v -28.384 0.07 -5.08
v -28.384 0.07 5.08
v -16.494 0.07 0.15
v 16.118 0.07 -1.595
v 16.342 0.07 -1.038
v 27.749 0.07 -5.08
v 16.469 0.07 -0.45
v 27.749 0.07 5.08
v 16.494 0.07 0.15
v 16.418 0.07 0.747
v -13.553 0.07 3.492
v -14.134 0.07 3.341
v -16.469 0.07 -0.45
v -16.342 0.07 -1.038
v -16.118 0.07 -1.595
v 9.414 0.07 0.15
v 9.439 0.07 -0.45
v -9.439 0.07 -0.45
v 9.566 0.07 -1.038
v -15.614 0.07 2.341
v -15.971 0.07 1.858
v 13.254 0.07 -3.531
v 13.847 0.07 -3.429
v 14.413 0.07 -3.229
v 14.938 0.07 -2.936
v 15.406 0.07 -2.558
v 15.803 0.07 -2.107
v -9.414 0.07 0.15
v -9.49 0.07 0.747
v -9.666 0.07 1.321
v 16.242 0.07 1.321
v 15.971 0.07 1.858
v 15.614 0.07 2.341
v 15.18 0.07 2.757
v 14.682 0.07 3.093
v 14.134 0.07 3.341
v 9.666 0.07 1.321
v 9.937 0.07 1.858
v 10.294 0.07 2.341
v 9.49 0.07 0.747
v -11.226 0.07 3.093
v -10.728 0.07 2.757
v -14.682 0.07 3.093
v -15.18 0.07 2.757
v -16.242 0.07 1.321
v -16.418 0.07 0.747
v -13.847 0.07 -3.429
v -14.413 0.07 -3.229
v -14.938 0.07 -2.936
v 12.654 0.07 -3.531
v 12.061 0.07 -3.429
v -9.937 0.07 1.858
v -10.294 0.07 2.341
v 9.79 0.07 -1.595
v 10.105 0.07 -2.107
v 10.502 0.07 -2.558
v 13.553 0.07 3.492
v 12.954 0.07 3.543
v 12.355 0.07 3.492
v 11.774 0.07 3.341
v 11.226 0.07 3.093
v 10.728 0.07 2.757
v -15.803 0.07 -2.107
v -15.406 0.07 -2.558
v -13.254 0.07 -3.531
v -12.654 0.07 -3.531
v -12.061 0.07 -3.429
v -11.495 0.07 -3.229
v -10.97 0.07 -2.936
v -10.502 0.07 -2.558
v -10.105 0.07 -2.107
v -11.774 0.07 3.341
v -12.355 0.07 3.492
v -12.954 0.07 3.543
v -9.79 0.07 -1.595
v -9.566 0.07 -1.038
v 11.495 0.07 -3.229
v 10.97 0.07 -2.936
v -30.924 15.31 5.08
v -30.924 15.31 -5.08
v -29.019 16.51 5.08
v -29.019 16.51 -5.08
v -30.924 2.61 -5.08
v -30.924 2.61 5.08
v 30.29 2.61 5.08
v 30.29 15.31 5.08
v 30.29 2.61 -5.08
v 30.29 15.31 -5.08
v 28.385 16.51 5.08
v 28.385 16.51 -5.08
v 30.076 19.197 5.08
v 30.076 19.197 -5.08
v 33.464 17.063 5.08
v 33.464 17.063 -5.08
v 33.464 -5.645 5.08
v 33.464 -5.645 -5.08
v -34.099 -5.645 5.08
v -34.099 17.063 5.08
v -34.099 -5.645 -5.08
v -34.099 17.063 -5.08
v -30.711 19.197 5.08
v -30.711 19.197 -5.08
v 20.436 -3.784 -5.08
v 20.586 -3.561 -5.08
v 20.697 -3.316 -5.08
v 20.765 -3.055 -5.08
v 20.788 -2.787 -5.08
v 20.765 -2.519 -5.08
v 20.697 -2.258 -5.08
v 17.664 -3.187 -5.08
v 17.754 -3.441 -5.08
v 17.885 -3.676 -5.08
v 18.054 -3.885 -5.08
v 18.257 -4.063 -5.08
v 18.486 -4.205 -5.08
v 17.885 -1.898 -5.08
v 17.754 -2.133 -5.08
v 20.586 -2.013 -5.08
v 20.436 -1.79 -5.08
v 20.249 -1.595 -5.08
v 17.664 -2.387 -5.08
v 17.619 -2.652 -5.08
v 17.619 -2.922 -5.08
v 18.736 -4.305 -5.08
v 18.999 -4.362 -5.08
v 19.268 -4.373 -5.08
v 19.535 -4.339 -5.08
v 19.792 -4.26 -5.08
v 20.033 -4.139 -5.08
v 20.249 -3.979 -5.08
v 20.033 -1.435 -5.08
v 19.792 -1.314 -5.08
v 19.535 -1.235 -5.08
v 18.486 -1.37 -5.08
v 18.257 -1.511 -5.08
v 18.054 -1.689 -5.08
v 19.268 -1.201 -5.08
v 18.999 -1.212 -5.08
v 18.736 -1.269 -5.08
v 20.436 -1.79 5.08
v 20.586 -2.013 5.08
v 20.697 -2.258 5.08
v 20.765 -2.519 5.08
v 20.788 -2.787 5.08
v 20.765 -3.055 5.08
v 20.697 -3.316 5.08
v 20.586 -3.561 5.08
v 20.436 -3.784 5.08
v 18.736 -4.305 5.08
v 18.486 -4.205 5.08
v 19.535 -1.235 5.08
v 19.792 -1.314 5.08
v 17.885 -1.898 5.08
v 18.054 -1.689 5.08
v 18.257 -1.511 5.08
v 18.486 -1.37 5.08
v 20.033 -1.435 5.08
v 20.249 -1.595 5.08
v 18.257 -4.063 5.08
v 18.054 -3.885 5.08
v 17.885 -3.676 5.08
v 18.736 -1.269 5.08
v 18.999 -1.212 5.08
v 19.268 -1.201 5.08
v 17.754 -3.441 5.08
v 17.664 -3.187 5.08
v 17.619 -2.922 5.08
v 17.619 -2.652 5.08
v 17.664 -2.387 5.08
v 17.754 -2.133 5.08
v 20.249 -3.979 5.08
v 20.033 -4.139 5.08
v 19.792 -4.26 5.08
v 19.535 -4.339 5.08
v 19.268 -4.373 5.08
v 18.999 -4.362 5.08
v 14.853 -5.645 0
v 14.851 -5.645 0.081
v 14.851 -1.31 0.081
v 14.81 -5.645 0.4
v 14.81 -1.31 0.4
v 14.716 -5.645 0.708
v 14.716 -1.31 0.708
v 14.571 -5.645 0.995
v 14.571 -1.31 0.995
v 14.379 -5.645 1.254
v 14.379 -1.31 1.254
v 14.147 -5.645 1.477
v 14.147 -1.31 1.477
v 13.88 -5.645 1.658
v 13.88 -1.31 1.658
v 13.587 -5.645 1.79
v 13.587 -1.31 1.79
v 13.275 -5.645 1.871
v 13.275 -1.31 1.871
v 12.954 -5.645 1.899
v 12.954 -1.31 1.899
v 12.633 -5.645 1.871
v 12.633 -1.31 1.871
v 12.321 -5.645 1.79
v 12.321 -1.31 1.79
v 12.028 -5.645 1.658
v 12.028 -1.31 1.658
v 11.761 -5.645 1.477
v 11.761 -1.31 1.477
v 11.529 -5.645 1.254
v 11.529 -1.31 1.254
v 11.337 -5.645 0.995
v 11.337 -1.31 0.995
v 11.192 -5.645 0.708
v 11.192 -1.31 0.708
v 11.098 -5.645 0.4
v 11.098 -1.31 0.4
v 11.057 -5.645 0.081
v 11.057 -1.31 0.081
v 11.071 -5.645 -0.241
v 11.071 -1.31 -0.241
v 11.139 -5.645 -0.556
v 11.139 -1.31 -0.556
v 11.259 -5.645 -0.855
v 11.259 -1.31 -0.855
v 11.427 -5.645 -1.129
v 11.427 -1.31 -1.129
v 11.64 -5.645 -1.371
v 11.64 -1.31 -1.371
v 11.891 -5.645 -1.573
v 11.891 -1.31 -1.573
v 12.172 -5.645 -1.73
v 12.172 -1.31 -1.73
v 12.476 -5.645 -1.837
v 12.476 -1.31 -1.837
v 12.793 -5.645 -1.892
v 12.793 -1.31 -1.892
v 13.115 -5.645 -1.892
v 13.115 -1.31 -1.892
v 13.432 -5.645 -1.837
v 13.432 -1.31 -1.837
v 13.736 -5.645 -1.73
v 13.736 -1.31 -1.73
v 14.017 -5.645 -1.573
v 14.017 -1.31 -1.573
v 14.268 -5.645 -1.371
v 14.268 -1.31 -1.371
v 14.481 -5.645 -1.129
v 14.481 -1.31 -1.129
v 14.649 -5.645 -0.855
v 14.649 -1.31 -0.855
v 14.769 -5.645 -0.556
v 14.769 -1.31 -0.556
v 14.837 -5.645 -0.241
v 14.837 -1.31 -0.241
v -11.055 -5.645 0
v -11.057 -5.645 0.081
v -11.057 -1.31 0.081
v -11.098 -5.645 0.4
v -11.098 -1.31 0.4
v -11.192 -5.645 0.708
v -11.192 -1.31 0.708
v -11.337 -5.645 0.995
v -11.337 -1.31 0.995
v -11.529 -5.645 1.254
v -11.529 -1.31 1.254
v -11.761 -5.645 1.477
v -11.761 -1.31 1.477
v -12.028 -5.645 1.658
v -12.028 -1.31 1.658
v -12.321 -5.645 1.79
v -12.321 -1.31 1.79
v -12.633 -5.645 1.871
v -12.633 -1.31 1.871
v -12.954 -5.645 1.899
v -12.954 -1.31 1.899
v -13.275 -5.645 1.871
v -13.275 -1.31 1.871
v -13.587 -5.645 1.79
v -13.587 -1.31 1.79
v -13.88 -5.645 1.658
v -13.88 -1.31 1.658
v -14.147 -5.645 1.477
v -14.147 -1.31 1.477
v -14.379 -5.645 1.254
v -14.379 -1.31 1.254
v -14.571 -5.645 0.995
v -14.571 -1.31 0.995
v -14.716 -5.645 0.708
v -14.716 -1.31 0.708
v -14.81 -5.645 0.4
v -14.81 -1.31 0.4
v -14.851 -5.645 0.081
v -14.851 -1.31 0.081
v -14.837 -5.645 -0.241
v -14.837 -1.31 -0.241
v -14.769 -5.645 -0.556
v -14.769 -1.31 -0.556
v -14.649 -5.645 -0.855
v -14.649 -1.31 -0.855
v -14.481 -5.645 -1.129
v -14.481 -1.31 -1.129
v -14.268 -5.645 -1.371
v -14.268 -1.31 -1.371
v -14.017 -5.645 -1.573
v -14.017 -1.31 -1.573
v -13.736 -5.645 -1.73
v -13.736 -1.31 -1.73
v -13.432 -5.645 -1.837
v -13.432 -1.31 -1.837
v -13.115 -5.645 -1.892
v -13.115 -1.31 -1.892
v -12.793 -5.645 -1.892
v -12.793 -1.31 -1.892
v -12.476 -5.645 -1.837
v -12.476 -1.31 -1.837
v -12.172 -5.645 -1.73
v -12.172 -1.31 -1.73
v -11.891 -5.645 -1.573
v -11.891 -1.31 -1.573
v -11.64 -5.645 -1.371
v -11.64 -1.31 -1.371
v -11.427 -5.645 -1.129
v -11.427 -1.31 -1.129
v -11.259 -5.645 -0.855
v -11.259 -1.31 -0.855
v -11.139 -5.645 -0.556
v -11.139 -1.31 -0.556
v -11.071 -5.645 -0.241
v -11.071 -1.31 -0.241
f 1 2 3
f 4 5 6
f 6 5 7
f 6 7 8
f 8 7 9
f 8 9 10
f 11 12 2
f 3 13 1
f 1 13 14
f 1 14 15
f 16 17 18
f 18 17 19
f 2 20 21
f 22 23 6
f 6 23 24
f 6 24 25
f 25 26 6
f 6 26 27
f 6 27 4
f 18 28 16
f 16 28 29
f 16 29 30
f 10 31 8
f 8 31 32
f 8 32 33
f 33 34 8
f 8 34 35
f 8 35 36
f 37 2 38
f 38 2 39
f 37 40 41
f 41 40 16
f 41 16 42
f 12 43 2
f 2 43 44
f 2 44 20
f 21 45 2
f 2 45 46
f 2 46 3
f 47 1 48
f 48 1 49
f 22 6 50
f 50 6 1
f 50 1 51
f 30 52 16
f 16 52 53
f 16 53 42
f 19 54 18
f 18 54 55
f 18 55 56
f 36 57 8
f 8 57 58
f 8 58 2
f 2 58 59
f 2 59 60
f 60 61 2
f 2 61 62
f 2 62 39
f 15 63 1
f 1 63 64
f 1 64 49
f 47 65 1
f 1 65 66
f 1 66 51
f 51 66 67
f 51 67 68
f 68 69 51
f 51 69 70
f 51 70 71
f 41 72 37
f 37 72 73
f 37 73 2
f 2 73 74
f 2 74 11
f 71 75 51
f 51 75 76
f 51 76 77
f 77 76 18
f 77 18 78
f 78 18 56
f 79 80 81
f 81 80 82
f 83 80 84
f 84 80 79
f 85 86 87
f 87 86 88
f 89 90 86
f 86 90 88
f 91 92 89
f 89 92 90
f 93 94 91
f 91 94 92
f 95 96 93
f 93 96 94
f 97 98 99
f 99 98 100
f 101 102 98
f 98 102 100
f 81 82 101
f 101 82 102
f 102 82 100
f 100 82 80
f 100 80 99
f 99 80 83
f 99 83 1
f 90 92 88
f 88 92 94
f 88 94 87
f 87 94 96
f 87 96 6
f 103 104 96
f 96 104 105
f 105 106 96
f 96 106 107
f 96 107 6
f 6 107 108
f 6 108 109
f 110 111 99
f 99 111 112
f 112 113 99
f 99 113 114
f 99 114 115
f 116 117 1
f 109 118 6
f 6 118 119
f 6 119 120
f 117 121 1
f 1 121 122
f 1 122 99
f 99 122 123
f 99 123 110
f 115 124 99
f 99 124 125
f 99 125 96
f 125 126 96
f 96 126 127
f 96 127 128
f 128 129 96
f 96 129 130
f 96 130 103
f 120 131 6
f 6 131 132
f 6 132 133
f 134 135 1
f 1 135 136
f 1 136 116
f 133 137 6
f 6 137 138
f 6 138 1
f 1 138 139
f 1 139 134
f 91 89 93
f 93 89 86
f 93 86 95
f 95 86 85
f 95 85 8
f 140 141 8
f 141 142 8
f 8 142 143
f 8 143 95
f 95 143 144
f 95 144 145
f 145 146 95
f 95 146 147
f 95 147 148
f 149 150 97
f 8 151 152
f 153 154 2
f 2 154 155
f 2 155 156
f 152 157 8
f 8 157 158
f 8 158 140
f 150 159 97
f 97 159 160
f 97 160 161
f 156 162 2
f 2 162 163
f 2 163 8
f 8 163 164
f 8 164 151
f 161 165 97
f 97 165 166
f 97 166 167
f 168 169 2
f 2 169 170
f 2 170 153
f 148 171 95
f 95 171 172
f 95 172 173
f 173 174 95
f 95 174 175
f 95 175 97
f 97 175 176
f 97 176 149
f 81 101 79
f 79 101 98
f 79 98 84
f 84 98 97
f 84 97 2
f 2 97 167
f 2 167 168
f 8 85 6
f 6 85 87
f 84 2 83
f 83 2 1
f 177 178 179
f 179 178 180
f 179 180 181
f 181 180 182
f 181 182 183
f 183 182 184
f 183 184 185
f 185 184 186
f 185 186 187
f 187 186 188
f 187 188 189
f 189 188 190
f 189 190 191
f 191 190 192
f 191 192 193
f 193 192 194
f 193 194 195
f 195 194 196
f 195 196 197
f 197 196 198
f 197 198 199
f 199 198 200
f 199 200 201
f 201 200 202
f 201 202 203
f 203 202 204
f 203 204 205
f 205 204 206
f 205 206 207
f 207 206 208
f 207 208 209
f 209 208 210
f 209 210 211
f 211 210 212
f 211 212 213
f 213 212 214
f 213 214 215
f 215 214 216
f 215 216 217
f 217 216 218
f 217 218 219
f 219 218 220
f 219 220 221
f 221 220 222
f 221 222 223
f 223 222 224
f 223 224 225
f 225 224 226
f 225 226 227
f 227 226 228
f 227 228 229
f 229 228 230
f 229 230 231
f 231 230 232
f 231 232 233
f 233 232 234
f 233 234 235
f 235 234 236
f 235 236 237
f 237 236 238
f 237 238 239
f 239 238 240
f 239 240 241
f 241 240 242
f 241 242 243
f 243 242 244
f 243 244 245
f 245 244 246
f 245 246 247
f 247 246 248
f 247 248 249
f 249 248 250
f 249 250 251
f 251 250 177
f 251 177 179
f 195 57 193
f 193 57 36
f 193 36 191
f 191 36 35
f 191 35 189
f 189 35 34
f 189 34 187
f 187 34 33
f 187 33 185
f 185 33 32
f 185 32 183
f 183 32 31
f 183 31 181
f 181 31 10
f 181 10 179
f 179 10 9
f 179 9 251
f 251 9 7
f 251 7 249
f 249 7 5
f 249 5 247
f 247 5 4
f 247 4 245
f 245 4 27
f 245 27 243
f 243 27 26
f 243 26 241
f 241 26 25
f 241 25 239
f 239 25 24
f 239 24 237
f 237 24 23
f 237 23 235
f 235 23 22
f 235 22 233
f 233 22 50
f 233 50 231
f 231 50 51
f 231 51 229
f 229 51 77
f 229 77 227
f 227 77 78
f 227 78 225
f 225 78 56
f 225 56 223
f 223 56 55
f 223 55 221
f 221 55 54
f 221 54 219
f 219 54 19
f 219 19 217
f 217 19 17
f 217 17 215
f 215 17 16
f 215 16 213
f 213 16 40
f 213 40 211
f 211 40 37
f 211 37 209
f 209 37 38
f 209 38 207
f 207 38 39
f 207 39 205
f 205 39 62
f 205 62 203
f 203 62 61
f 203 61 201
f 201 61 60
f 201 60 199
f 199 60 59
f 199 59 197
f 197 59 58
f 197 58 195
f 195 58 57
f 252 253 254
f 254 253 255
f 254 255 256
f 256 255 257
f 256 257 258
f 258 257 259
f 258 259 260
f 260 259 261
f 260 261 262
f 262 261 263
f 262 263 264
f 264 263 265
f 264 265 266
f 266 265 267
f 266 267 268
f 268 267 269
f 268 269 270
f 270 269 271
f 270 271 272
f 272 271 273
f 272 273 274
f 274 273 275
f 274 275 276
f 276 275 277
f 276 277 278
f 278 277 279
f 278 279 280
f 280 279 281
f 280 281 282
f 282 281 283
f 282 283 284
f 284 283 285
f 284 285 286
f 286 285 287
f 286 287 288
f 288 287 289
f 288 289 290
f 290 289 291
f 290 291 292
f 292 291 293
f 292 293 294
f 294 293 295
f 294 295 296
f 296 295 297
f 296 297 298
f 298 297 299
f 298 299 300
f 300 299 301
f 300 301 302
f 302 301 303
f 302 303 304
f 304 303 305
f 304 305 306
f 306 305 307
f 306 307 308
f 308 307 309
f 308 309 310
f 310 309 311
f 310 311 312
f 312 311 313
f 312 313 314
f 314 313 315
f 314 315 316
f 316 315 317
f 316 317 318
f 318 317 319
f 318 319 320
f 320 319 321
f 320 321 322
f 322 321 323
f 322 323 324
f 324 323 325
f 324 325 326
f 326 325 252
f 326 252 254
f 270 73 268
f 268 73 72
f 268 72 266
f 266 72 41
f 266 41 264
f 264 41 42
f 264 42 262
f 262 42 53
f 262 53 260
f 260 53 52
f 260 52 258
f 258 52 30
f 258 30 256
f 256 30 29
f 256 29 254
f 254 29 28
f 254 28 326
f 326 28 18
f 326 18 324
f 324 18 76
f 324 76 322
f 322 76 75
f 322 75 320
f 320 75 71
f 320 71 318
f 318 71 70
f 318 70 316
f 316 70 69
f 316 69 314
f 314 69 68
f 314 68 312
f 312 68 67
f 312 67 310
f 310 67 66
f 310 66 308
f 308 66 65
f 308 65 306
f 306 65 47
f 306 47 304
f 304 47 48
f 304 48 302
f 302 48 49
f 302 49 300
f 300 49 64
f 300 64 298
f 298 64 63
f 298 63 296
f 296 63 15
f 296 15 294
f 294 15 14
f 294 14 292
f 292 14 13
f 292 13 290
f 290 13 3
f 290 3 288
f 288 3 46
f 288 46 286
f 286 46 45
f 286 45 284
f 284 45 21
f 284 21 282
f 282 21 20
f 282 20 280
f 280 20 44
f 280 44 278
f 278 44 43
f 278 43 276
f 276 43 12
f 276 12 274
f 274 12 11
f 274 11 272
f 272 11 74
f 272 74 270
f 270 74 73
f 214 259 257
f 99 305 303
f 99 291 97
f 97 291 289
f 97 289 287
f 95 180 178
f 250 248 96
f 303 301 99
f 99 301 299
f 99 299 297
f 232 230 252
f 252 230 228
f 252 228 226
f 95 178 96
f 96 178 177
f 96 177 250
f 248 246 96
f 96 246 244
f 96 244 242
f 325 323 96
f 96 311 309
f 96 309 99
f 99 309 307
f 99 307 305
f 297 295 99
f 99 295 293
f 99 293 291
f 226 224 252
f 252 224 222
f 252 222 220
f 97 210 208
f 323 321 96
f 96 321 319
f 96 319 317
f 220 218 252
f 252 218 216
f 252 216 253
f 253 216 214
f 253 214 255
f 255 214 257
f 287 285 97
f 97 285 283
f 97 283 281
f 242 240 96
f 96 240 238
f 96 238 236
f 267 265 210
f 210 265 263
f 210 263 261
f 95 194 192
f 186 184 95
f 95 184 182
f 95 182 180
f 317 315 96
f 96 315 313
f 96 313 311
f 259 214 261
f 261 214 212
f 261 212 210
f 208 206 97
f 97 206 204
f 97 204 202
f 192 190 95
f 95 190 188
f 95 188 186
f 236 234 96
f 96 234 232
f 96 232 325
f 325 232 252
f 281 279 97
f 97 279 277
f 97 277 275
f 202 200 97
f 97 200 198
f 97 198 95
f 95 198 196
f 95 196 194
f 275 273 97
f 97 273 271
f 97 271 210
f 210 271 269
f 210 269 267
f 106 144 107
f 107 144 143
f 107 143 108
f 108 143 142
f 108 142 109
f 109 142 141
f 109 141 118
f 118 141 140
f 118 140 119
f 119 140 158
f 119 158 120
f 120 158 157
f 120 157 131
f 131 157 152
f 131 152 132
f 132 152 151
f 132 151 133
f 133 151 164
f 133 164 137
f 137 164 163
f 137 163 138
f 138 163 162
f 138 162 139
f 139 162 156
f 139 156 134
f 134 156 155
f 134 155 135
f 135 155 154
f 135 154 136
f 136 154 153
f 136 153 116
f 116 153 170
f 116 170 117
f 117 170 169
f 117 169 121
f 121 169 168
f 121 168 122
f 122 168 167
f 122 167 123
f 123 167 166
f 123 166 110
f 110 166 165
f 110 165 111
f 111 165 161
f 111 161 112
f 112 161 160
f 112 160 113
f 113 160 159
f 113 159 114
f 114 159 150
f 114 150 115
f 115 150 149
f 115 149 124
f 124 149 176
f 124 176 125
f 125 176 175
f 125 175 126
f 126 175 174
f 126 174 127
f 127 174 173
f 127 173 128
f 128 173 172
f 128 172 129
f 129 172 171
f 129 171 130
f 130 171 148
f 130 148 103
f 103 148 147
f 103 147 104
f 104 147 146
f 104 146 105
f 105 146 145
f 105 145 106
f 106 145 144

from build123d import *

# Parameters (mm, degrees)
BOSS_EXTRUDE1_DEPTH                               = 5.08
BOSS_EXTRUDE1_DEPTH_BACK                          = 5.08
SKETCH2_R                                         = 1.5875
CUT_EXTRUDE1_DEPTH                                = 3.175
CUT_EXTRUDE1_DEPTH_BACK                           = 11.557
CHAMFER1_SIZE                                     = 2.54
CHAMFER2_SIZE                                     = 2.54
CSK_FOR_6_FLAT_HEAD_MACHINE_SCREW_100_D           = 3.7973
CSK_FOR_6_FLAT_HEAD_MACHINE_SCREW_100_CSINK_D     = 7.0866
CSK_FOR_6_FLAT_HEAD_MACHINE_SCREW_100_CSINK_ANGLE = 100
SKETCH6_W                                         = 67.564
SKETCH6_H                                         = 10.16
SKETCH6_R                                         = 1.89865
BOSS_EXTRUDE2_DEPTH                               = 2.54
SKETCH7_R                                         = 1.5875
CUT_EXTRUDE2_DEPTH                                = 6.08
CUT_EXTRUDE2_DEPTH_BACK                           = 6.08


with BuildPart() as part:
    # Sketch1 → Boss-Extrude1 (new body, two sides)
    with BuildSketch(Plane.XY) as boss_extrude1_sk:
        Polygon((30.2895, 0.070457444), (-0.3175, 0.070457444), (-30.9245, 0.070457444), (-30.9245, 15.310457444), (-29.0195, 16.51), (-30.711281219, 19.196726876), (-34.0995, 17.06322944), (-34.0995, -3.104542556), (33.4645, -3.104542556), (33.4645, 17.06322944), (30.076281219, 19.196726876), (28.3845, 16.51), (30.2895, 15.310457444), align=None)
    extrude(amount=BOSS_EXTRUDE1_DEPTH)
    extrude(boss_extrude1_sk.sketch, amount=-BOSS_EXTRUDE1_DEPTH_BACK)

    # Sketch2 → Cut-Extrude1 (cut, two sides)
    with BuildSketch(Plane(origin=(0, 0, 0), x_dir=(1, 0, 0), z_dir=(0, 1, 0))) as cut_extrude1_sk:
        with Locations((-12.954, 0)):
            Circle(SKETCH2_R)
        with Locations((12.954, 0)):
            Circle(SKETCH2_R)
    extrude(amount=CUT_EXTRUDE1_DEPTH, mode=Mode.SUBTRACT)
    extrude(cut_extrude1_sk.sketch, amount=-CUT_EXTRUDE1_DEPTH_BACK, mode=Mode.SUBTRACT)

    # Chamfer1
    chamfer1_edges = [part.edges().sort_by_distance(p)[0] for p in [
        (30.2895, 0.070457444, 0),
    ]]
    chamfer(chamfer1_edges, length=CHAMFER1_SIZE)

    # Chamfer2
    chamfer2_edges = [part.edges().sort_by_distance(p)[0] for p in [
        (-30.9245, 0.070457444, 0),
    ]]
    chamfer(chamfer2_edges, length=CHAMFER2_SIZE)

    # CSK for #6 Flat Head Machine Screw (100)2 (through all)
    with Locations(Plane(origin=(-12.954, 0.070457444, 0), x_dir=(1, 0, 0), z_dir=(0, 1, 0))):
        with Locations((0, 0), (25.908, 0)):
            CounterSinkHole(CSK_FOR_6_FLAT_HEAD_MACHINE_SCREW_100_D / 2, CSK_FOR_6_FLAT_HEAD_MACHINE_SCREW_100_CSINK_D / 2, counter_sink_angle=CSK_FOR_6_FLAT_HEAD_MACHINE_SCREW_100_CSINK_ANGLE)

    # Sketch6 → Boss-Extrude2 (add)
    with BuildSketch(Plane(origin=(0, -3.104542556, 0), x_dir=(-1, 0, 0), z_dir=(0, -1, 0))):
        with Locations((0.3175, 0)):
            Rectangle(SKETCH6_W, SKETCH6_H)
        with Locations((12.954, 0)):
            Circle(SKETCH6_R, mode=Mode.SUBTRACT)
        with Locations((-12.954, 0)):
            Circle(SKETCH6_R, mode=Mode.SUBTRACT)
    extrude(amount=BOSS_EXTRUDE2_DEPTH)

    # Sketch7 → Cut-Extrude2 (cut, two sides)
    with BuildSketch(Plane.XY) as cut_extrude2_sk:
        with Locations((19.200527544, -2.787042556)):
            Circle(SKETCH7_R)
    extrude(amount=CUT_EXTRUDE2_DEPTH, mode=Mode.SUBTRACT)
    extrude(cut_extrude2_sk.sketch, amount=-CUT_EXTRUDE2_DEPTH_BACK, mode=Mode.SUBTRACT)


solid = part.part
